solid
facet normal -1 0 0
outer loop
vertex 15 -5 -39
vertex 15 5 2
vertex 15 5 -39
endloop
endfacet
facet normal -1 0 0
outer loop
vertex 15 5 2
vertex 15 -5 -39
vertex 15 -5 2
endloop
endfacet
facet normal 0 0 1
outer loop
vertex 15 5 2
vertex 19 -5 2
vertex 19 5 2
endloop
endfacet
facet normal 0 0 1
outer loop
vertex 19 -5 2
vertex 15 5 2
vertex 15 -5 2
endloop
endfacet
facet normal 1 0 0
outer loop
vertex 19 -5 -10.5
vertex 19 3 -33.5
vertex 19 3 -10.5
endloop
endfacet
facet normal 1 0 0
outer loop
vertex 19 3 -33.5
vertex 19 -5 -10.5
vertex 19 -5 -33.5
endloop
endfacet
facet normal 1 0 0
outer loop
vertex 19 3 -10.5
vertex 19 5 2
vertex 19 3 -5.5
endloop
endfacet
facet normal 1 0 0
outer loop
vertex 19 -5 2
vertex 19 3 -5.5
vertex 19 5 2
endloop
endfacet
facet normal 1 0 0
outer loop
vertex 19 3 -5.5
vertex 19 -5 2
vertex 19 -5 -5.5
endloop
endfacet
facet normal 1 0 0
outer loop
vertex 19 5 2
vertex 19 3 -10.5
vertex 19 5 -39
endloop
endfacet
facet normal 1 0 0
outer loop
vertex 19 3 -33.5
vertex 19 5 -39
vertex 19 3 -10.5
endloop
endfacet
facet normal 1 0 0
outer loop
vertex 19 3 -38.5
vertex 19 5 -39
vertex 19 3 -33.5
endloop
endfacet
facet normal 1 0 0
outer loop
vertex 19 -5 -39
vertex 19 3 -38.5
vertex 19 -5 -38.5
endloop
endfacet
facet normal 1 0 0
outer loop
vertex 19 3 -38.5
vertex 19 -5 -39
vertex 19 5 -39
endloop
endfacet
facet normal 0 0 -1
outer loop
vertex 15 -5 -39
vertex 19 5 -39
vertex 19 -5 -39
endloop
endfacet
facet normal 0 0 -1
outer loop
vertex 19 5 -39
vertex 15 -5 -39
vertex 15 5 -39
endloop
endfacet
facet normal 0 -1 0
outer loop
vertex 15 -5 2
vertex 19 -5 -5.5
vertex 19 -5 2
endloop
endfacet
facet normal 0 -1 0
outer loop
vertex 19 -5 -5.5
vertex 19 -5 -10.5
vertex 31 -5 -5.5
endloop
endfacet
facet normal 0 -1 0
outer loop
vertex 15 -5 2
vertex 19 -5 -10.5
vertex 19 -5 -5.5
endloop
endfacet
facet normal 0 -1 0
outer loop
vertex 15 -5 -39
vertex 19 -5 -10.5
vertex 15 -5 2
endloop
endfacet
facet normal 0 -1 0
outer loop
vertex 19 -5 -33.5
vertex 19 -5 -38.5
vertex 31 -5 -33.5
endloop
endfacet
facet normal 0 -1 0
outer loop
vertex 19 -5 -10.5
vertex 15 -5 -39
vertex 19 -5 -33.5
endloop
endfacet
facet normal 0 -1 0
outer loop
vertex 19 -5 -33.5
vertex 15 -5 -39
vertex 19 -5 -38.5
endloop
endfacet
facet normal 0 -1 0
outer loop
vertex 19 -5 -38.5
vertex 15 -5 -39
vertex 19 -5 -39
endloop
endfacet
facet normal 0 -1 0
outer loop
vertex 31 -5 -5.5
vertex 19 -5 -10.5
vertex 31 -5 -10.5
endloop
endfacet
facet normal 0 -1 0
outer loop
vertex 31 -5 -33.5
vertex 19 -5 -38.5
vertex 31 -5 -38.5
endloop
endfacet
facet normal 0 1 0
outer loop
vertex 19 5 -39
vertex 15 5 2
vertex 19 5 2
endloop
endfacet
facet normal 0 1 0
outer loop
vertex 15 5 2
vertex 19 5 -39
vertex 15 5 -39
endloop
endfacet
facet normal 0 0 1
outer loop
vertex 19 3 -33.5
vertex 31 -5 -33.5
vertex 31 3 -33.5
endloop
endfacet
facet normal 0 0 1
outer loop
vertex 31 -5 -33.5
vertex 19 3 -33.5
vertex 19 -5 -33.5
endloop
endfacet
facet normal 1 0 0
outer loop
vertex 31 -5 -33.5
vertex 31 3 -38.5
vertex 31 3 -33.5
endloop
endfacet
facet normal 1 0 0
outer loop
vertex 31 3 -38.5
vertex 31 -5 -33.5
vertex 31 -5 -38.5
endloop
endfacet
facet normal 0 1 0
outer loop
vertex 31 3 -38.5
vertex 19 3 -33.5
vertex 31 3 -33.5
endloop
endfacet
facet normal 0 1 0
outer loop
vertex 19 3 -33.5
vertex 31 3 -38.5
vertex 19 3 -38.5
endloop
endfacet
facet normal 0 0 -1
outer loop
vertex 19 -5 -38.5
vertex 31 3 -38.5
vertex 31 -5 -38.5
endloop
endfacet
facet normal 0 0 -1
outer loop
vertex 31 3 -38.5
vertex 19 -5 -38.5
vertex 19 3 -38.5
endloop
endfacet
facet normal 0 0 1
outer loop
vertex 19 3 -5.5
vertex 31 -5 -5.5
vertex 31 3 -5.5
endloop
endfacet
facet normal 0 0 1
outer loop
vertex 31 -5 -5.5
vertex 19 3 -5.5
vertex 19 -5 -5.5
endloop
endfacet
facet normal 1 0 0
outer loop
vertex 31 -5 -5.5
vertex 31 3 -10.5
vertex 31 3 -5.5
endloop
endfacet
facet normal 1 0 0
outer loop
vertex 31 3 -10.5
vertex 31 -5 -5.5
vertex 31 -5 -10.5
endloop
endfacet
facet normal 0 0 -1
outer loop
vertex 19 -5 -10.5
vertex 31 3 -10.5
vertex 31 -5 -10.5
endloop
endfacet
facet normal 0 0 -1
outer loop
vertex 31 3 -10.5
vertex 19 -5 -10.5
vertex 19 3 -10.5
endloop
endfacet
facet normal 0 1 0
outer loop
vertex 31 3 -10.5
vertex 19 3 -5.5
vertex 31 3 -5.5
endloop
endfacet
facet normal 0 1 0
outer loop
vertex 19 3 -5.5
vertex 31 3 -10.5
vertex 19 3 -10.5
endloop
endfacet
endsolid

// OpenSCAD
// Bottom extention to hold the X axis gyro and allow the x axis to rotate
translate([15,-5,-39])
    cube([4, 10, 41]);
translate([19,-5,-38.5])
    cube([12, 8, 5]);
translate([19,-5,-10.5])
    cube([12, 8, 5]);
    
//translate([26.2,-14,-23.25]) rotate([0,90,90]) translate([-16.5,-50,16.5]) import("servo.stl");
